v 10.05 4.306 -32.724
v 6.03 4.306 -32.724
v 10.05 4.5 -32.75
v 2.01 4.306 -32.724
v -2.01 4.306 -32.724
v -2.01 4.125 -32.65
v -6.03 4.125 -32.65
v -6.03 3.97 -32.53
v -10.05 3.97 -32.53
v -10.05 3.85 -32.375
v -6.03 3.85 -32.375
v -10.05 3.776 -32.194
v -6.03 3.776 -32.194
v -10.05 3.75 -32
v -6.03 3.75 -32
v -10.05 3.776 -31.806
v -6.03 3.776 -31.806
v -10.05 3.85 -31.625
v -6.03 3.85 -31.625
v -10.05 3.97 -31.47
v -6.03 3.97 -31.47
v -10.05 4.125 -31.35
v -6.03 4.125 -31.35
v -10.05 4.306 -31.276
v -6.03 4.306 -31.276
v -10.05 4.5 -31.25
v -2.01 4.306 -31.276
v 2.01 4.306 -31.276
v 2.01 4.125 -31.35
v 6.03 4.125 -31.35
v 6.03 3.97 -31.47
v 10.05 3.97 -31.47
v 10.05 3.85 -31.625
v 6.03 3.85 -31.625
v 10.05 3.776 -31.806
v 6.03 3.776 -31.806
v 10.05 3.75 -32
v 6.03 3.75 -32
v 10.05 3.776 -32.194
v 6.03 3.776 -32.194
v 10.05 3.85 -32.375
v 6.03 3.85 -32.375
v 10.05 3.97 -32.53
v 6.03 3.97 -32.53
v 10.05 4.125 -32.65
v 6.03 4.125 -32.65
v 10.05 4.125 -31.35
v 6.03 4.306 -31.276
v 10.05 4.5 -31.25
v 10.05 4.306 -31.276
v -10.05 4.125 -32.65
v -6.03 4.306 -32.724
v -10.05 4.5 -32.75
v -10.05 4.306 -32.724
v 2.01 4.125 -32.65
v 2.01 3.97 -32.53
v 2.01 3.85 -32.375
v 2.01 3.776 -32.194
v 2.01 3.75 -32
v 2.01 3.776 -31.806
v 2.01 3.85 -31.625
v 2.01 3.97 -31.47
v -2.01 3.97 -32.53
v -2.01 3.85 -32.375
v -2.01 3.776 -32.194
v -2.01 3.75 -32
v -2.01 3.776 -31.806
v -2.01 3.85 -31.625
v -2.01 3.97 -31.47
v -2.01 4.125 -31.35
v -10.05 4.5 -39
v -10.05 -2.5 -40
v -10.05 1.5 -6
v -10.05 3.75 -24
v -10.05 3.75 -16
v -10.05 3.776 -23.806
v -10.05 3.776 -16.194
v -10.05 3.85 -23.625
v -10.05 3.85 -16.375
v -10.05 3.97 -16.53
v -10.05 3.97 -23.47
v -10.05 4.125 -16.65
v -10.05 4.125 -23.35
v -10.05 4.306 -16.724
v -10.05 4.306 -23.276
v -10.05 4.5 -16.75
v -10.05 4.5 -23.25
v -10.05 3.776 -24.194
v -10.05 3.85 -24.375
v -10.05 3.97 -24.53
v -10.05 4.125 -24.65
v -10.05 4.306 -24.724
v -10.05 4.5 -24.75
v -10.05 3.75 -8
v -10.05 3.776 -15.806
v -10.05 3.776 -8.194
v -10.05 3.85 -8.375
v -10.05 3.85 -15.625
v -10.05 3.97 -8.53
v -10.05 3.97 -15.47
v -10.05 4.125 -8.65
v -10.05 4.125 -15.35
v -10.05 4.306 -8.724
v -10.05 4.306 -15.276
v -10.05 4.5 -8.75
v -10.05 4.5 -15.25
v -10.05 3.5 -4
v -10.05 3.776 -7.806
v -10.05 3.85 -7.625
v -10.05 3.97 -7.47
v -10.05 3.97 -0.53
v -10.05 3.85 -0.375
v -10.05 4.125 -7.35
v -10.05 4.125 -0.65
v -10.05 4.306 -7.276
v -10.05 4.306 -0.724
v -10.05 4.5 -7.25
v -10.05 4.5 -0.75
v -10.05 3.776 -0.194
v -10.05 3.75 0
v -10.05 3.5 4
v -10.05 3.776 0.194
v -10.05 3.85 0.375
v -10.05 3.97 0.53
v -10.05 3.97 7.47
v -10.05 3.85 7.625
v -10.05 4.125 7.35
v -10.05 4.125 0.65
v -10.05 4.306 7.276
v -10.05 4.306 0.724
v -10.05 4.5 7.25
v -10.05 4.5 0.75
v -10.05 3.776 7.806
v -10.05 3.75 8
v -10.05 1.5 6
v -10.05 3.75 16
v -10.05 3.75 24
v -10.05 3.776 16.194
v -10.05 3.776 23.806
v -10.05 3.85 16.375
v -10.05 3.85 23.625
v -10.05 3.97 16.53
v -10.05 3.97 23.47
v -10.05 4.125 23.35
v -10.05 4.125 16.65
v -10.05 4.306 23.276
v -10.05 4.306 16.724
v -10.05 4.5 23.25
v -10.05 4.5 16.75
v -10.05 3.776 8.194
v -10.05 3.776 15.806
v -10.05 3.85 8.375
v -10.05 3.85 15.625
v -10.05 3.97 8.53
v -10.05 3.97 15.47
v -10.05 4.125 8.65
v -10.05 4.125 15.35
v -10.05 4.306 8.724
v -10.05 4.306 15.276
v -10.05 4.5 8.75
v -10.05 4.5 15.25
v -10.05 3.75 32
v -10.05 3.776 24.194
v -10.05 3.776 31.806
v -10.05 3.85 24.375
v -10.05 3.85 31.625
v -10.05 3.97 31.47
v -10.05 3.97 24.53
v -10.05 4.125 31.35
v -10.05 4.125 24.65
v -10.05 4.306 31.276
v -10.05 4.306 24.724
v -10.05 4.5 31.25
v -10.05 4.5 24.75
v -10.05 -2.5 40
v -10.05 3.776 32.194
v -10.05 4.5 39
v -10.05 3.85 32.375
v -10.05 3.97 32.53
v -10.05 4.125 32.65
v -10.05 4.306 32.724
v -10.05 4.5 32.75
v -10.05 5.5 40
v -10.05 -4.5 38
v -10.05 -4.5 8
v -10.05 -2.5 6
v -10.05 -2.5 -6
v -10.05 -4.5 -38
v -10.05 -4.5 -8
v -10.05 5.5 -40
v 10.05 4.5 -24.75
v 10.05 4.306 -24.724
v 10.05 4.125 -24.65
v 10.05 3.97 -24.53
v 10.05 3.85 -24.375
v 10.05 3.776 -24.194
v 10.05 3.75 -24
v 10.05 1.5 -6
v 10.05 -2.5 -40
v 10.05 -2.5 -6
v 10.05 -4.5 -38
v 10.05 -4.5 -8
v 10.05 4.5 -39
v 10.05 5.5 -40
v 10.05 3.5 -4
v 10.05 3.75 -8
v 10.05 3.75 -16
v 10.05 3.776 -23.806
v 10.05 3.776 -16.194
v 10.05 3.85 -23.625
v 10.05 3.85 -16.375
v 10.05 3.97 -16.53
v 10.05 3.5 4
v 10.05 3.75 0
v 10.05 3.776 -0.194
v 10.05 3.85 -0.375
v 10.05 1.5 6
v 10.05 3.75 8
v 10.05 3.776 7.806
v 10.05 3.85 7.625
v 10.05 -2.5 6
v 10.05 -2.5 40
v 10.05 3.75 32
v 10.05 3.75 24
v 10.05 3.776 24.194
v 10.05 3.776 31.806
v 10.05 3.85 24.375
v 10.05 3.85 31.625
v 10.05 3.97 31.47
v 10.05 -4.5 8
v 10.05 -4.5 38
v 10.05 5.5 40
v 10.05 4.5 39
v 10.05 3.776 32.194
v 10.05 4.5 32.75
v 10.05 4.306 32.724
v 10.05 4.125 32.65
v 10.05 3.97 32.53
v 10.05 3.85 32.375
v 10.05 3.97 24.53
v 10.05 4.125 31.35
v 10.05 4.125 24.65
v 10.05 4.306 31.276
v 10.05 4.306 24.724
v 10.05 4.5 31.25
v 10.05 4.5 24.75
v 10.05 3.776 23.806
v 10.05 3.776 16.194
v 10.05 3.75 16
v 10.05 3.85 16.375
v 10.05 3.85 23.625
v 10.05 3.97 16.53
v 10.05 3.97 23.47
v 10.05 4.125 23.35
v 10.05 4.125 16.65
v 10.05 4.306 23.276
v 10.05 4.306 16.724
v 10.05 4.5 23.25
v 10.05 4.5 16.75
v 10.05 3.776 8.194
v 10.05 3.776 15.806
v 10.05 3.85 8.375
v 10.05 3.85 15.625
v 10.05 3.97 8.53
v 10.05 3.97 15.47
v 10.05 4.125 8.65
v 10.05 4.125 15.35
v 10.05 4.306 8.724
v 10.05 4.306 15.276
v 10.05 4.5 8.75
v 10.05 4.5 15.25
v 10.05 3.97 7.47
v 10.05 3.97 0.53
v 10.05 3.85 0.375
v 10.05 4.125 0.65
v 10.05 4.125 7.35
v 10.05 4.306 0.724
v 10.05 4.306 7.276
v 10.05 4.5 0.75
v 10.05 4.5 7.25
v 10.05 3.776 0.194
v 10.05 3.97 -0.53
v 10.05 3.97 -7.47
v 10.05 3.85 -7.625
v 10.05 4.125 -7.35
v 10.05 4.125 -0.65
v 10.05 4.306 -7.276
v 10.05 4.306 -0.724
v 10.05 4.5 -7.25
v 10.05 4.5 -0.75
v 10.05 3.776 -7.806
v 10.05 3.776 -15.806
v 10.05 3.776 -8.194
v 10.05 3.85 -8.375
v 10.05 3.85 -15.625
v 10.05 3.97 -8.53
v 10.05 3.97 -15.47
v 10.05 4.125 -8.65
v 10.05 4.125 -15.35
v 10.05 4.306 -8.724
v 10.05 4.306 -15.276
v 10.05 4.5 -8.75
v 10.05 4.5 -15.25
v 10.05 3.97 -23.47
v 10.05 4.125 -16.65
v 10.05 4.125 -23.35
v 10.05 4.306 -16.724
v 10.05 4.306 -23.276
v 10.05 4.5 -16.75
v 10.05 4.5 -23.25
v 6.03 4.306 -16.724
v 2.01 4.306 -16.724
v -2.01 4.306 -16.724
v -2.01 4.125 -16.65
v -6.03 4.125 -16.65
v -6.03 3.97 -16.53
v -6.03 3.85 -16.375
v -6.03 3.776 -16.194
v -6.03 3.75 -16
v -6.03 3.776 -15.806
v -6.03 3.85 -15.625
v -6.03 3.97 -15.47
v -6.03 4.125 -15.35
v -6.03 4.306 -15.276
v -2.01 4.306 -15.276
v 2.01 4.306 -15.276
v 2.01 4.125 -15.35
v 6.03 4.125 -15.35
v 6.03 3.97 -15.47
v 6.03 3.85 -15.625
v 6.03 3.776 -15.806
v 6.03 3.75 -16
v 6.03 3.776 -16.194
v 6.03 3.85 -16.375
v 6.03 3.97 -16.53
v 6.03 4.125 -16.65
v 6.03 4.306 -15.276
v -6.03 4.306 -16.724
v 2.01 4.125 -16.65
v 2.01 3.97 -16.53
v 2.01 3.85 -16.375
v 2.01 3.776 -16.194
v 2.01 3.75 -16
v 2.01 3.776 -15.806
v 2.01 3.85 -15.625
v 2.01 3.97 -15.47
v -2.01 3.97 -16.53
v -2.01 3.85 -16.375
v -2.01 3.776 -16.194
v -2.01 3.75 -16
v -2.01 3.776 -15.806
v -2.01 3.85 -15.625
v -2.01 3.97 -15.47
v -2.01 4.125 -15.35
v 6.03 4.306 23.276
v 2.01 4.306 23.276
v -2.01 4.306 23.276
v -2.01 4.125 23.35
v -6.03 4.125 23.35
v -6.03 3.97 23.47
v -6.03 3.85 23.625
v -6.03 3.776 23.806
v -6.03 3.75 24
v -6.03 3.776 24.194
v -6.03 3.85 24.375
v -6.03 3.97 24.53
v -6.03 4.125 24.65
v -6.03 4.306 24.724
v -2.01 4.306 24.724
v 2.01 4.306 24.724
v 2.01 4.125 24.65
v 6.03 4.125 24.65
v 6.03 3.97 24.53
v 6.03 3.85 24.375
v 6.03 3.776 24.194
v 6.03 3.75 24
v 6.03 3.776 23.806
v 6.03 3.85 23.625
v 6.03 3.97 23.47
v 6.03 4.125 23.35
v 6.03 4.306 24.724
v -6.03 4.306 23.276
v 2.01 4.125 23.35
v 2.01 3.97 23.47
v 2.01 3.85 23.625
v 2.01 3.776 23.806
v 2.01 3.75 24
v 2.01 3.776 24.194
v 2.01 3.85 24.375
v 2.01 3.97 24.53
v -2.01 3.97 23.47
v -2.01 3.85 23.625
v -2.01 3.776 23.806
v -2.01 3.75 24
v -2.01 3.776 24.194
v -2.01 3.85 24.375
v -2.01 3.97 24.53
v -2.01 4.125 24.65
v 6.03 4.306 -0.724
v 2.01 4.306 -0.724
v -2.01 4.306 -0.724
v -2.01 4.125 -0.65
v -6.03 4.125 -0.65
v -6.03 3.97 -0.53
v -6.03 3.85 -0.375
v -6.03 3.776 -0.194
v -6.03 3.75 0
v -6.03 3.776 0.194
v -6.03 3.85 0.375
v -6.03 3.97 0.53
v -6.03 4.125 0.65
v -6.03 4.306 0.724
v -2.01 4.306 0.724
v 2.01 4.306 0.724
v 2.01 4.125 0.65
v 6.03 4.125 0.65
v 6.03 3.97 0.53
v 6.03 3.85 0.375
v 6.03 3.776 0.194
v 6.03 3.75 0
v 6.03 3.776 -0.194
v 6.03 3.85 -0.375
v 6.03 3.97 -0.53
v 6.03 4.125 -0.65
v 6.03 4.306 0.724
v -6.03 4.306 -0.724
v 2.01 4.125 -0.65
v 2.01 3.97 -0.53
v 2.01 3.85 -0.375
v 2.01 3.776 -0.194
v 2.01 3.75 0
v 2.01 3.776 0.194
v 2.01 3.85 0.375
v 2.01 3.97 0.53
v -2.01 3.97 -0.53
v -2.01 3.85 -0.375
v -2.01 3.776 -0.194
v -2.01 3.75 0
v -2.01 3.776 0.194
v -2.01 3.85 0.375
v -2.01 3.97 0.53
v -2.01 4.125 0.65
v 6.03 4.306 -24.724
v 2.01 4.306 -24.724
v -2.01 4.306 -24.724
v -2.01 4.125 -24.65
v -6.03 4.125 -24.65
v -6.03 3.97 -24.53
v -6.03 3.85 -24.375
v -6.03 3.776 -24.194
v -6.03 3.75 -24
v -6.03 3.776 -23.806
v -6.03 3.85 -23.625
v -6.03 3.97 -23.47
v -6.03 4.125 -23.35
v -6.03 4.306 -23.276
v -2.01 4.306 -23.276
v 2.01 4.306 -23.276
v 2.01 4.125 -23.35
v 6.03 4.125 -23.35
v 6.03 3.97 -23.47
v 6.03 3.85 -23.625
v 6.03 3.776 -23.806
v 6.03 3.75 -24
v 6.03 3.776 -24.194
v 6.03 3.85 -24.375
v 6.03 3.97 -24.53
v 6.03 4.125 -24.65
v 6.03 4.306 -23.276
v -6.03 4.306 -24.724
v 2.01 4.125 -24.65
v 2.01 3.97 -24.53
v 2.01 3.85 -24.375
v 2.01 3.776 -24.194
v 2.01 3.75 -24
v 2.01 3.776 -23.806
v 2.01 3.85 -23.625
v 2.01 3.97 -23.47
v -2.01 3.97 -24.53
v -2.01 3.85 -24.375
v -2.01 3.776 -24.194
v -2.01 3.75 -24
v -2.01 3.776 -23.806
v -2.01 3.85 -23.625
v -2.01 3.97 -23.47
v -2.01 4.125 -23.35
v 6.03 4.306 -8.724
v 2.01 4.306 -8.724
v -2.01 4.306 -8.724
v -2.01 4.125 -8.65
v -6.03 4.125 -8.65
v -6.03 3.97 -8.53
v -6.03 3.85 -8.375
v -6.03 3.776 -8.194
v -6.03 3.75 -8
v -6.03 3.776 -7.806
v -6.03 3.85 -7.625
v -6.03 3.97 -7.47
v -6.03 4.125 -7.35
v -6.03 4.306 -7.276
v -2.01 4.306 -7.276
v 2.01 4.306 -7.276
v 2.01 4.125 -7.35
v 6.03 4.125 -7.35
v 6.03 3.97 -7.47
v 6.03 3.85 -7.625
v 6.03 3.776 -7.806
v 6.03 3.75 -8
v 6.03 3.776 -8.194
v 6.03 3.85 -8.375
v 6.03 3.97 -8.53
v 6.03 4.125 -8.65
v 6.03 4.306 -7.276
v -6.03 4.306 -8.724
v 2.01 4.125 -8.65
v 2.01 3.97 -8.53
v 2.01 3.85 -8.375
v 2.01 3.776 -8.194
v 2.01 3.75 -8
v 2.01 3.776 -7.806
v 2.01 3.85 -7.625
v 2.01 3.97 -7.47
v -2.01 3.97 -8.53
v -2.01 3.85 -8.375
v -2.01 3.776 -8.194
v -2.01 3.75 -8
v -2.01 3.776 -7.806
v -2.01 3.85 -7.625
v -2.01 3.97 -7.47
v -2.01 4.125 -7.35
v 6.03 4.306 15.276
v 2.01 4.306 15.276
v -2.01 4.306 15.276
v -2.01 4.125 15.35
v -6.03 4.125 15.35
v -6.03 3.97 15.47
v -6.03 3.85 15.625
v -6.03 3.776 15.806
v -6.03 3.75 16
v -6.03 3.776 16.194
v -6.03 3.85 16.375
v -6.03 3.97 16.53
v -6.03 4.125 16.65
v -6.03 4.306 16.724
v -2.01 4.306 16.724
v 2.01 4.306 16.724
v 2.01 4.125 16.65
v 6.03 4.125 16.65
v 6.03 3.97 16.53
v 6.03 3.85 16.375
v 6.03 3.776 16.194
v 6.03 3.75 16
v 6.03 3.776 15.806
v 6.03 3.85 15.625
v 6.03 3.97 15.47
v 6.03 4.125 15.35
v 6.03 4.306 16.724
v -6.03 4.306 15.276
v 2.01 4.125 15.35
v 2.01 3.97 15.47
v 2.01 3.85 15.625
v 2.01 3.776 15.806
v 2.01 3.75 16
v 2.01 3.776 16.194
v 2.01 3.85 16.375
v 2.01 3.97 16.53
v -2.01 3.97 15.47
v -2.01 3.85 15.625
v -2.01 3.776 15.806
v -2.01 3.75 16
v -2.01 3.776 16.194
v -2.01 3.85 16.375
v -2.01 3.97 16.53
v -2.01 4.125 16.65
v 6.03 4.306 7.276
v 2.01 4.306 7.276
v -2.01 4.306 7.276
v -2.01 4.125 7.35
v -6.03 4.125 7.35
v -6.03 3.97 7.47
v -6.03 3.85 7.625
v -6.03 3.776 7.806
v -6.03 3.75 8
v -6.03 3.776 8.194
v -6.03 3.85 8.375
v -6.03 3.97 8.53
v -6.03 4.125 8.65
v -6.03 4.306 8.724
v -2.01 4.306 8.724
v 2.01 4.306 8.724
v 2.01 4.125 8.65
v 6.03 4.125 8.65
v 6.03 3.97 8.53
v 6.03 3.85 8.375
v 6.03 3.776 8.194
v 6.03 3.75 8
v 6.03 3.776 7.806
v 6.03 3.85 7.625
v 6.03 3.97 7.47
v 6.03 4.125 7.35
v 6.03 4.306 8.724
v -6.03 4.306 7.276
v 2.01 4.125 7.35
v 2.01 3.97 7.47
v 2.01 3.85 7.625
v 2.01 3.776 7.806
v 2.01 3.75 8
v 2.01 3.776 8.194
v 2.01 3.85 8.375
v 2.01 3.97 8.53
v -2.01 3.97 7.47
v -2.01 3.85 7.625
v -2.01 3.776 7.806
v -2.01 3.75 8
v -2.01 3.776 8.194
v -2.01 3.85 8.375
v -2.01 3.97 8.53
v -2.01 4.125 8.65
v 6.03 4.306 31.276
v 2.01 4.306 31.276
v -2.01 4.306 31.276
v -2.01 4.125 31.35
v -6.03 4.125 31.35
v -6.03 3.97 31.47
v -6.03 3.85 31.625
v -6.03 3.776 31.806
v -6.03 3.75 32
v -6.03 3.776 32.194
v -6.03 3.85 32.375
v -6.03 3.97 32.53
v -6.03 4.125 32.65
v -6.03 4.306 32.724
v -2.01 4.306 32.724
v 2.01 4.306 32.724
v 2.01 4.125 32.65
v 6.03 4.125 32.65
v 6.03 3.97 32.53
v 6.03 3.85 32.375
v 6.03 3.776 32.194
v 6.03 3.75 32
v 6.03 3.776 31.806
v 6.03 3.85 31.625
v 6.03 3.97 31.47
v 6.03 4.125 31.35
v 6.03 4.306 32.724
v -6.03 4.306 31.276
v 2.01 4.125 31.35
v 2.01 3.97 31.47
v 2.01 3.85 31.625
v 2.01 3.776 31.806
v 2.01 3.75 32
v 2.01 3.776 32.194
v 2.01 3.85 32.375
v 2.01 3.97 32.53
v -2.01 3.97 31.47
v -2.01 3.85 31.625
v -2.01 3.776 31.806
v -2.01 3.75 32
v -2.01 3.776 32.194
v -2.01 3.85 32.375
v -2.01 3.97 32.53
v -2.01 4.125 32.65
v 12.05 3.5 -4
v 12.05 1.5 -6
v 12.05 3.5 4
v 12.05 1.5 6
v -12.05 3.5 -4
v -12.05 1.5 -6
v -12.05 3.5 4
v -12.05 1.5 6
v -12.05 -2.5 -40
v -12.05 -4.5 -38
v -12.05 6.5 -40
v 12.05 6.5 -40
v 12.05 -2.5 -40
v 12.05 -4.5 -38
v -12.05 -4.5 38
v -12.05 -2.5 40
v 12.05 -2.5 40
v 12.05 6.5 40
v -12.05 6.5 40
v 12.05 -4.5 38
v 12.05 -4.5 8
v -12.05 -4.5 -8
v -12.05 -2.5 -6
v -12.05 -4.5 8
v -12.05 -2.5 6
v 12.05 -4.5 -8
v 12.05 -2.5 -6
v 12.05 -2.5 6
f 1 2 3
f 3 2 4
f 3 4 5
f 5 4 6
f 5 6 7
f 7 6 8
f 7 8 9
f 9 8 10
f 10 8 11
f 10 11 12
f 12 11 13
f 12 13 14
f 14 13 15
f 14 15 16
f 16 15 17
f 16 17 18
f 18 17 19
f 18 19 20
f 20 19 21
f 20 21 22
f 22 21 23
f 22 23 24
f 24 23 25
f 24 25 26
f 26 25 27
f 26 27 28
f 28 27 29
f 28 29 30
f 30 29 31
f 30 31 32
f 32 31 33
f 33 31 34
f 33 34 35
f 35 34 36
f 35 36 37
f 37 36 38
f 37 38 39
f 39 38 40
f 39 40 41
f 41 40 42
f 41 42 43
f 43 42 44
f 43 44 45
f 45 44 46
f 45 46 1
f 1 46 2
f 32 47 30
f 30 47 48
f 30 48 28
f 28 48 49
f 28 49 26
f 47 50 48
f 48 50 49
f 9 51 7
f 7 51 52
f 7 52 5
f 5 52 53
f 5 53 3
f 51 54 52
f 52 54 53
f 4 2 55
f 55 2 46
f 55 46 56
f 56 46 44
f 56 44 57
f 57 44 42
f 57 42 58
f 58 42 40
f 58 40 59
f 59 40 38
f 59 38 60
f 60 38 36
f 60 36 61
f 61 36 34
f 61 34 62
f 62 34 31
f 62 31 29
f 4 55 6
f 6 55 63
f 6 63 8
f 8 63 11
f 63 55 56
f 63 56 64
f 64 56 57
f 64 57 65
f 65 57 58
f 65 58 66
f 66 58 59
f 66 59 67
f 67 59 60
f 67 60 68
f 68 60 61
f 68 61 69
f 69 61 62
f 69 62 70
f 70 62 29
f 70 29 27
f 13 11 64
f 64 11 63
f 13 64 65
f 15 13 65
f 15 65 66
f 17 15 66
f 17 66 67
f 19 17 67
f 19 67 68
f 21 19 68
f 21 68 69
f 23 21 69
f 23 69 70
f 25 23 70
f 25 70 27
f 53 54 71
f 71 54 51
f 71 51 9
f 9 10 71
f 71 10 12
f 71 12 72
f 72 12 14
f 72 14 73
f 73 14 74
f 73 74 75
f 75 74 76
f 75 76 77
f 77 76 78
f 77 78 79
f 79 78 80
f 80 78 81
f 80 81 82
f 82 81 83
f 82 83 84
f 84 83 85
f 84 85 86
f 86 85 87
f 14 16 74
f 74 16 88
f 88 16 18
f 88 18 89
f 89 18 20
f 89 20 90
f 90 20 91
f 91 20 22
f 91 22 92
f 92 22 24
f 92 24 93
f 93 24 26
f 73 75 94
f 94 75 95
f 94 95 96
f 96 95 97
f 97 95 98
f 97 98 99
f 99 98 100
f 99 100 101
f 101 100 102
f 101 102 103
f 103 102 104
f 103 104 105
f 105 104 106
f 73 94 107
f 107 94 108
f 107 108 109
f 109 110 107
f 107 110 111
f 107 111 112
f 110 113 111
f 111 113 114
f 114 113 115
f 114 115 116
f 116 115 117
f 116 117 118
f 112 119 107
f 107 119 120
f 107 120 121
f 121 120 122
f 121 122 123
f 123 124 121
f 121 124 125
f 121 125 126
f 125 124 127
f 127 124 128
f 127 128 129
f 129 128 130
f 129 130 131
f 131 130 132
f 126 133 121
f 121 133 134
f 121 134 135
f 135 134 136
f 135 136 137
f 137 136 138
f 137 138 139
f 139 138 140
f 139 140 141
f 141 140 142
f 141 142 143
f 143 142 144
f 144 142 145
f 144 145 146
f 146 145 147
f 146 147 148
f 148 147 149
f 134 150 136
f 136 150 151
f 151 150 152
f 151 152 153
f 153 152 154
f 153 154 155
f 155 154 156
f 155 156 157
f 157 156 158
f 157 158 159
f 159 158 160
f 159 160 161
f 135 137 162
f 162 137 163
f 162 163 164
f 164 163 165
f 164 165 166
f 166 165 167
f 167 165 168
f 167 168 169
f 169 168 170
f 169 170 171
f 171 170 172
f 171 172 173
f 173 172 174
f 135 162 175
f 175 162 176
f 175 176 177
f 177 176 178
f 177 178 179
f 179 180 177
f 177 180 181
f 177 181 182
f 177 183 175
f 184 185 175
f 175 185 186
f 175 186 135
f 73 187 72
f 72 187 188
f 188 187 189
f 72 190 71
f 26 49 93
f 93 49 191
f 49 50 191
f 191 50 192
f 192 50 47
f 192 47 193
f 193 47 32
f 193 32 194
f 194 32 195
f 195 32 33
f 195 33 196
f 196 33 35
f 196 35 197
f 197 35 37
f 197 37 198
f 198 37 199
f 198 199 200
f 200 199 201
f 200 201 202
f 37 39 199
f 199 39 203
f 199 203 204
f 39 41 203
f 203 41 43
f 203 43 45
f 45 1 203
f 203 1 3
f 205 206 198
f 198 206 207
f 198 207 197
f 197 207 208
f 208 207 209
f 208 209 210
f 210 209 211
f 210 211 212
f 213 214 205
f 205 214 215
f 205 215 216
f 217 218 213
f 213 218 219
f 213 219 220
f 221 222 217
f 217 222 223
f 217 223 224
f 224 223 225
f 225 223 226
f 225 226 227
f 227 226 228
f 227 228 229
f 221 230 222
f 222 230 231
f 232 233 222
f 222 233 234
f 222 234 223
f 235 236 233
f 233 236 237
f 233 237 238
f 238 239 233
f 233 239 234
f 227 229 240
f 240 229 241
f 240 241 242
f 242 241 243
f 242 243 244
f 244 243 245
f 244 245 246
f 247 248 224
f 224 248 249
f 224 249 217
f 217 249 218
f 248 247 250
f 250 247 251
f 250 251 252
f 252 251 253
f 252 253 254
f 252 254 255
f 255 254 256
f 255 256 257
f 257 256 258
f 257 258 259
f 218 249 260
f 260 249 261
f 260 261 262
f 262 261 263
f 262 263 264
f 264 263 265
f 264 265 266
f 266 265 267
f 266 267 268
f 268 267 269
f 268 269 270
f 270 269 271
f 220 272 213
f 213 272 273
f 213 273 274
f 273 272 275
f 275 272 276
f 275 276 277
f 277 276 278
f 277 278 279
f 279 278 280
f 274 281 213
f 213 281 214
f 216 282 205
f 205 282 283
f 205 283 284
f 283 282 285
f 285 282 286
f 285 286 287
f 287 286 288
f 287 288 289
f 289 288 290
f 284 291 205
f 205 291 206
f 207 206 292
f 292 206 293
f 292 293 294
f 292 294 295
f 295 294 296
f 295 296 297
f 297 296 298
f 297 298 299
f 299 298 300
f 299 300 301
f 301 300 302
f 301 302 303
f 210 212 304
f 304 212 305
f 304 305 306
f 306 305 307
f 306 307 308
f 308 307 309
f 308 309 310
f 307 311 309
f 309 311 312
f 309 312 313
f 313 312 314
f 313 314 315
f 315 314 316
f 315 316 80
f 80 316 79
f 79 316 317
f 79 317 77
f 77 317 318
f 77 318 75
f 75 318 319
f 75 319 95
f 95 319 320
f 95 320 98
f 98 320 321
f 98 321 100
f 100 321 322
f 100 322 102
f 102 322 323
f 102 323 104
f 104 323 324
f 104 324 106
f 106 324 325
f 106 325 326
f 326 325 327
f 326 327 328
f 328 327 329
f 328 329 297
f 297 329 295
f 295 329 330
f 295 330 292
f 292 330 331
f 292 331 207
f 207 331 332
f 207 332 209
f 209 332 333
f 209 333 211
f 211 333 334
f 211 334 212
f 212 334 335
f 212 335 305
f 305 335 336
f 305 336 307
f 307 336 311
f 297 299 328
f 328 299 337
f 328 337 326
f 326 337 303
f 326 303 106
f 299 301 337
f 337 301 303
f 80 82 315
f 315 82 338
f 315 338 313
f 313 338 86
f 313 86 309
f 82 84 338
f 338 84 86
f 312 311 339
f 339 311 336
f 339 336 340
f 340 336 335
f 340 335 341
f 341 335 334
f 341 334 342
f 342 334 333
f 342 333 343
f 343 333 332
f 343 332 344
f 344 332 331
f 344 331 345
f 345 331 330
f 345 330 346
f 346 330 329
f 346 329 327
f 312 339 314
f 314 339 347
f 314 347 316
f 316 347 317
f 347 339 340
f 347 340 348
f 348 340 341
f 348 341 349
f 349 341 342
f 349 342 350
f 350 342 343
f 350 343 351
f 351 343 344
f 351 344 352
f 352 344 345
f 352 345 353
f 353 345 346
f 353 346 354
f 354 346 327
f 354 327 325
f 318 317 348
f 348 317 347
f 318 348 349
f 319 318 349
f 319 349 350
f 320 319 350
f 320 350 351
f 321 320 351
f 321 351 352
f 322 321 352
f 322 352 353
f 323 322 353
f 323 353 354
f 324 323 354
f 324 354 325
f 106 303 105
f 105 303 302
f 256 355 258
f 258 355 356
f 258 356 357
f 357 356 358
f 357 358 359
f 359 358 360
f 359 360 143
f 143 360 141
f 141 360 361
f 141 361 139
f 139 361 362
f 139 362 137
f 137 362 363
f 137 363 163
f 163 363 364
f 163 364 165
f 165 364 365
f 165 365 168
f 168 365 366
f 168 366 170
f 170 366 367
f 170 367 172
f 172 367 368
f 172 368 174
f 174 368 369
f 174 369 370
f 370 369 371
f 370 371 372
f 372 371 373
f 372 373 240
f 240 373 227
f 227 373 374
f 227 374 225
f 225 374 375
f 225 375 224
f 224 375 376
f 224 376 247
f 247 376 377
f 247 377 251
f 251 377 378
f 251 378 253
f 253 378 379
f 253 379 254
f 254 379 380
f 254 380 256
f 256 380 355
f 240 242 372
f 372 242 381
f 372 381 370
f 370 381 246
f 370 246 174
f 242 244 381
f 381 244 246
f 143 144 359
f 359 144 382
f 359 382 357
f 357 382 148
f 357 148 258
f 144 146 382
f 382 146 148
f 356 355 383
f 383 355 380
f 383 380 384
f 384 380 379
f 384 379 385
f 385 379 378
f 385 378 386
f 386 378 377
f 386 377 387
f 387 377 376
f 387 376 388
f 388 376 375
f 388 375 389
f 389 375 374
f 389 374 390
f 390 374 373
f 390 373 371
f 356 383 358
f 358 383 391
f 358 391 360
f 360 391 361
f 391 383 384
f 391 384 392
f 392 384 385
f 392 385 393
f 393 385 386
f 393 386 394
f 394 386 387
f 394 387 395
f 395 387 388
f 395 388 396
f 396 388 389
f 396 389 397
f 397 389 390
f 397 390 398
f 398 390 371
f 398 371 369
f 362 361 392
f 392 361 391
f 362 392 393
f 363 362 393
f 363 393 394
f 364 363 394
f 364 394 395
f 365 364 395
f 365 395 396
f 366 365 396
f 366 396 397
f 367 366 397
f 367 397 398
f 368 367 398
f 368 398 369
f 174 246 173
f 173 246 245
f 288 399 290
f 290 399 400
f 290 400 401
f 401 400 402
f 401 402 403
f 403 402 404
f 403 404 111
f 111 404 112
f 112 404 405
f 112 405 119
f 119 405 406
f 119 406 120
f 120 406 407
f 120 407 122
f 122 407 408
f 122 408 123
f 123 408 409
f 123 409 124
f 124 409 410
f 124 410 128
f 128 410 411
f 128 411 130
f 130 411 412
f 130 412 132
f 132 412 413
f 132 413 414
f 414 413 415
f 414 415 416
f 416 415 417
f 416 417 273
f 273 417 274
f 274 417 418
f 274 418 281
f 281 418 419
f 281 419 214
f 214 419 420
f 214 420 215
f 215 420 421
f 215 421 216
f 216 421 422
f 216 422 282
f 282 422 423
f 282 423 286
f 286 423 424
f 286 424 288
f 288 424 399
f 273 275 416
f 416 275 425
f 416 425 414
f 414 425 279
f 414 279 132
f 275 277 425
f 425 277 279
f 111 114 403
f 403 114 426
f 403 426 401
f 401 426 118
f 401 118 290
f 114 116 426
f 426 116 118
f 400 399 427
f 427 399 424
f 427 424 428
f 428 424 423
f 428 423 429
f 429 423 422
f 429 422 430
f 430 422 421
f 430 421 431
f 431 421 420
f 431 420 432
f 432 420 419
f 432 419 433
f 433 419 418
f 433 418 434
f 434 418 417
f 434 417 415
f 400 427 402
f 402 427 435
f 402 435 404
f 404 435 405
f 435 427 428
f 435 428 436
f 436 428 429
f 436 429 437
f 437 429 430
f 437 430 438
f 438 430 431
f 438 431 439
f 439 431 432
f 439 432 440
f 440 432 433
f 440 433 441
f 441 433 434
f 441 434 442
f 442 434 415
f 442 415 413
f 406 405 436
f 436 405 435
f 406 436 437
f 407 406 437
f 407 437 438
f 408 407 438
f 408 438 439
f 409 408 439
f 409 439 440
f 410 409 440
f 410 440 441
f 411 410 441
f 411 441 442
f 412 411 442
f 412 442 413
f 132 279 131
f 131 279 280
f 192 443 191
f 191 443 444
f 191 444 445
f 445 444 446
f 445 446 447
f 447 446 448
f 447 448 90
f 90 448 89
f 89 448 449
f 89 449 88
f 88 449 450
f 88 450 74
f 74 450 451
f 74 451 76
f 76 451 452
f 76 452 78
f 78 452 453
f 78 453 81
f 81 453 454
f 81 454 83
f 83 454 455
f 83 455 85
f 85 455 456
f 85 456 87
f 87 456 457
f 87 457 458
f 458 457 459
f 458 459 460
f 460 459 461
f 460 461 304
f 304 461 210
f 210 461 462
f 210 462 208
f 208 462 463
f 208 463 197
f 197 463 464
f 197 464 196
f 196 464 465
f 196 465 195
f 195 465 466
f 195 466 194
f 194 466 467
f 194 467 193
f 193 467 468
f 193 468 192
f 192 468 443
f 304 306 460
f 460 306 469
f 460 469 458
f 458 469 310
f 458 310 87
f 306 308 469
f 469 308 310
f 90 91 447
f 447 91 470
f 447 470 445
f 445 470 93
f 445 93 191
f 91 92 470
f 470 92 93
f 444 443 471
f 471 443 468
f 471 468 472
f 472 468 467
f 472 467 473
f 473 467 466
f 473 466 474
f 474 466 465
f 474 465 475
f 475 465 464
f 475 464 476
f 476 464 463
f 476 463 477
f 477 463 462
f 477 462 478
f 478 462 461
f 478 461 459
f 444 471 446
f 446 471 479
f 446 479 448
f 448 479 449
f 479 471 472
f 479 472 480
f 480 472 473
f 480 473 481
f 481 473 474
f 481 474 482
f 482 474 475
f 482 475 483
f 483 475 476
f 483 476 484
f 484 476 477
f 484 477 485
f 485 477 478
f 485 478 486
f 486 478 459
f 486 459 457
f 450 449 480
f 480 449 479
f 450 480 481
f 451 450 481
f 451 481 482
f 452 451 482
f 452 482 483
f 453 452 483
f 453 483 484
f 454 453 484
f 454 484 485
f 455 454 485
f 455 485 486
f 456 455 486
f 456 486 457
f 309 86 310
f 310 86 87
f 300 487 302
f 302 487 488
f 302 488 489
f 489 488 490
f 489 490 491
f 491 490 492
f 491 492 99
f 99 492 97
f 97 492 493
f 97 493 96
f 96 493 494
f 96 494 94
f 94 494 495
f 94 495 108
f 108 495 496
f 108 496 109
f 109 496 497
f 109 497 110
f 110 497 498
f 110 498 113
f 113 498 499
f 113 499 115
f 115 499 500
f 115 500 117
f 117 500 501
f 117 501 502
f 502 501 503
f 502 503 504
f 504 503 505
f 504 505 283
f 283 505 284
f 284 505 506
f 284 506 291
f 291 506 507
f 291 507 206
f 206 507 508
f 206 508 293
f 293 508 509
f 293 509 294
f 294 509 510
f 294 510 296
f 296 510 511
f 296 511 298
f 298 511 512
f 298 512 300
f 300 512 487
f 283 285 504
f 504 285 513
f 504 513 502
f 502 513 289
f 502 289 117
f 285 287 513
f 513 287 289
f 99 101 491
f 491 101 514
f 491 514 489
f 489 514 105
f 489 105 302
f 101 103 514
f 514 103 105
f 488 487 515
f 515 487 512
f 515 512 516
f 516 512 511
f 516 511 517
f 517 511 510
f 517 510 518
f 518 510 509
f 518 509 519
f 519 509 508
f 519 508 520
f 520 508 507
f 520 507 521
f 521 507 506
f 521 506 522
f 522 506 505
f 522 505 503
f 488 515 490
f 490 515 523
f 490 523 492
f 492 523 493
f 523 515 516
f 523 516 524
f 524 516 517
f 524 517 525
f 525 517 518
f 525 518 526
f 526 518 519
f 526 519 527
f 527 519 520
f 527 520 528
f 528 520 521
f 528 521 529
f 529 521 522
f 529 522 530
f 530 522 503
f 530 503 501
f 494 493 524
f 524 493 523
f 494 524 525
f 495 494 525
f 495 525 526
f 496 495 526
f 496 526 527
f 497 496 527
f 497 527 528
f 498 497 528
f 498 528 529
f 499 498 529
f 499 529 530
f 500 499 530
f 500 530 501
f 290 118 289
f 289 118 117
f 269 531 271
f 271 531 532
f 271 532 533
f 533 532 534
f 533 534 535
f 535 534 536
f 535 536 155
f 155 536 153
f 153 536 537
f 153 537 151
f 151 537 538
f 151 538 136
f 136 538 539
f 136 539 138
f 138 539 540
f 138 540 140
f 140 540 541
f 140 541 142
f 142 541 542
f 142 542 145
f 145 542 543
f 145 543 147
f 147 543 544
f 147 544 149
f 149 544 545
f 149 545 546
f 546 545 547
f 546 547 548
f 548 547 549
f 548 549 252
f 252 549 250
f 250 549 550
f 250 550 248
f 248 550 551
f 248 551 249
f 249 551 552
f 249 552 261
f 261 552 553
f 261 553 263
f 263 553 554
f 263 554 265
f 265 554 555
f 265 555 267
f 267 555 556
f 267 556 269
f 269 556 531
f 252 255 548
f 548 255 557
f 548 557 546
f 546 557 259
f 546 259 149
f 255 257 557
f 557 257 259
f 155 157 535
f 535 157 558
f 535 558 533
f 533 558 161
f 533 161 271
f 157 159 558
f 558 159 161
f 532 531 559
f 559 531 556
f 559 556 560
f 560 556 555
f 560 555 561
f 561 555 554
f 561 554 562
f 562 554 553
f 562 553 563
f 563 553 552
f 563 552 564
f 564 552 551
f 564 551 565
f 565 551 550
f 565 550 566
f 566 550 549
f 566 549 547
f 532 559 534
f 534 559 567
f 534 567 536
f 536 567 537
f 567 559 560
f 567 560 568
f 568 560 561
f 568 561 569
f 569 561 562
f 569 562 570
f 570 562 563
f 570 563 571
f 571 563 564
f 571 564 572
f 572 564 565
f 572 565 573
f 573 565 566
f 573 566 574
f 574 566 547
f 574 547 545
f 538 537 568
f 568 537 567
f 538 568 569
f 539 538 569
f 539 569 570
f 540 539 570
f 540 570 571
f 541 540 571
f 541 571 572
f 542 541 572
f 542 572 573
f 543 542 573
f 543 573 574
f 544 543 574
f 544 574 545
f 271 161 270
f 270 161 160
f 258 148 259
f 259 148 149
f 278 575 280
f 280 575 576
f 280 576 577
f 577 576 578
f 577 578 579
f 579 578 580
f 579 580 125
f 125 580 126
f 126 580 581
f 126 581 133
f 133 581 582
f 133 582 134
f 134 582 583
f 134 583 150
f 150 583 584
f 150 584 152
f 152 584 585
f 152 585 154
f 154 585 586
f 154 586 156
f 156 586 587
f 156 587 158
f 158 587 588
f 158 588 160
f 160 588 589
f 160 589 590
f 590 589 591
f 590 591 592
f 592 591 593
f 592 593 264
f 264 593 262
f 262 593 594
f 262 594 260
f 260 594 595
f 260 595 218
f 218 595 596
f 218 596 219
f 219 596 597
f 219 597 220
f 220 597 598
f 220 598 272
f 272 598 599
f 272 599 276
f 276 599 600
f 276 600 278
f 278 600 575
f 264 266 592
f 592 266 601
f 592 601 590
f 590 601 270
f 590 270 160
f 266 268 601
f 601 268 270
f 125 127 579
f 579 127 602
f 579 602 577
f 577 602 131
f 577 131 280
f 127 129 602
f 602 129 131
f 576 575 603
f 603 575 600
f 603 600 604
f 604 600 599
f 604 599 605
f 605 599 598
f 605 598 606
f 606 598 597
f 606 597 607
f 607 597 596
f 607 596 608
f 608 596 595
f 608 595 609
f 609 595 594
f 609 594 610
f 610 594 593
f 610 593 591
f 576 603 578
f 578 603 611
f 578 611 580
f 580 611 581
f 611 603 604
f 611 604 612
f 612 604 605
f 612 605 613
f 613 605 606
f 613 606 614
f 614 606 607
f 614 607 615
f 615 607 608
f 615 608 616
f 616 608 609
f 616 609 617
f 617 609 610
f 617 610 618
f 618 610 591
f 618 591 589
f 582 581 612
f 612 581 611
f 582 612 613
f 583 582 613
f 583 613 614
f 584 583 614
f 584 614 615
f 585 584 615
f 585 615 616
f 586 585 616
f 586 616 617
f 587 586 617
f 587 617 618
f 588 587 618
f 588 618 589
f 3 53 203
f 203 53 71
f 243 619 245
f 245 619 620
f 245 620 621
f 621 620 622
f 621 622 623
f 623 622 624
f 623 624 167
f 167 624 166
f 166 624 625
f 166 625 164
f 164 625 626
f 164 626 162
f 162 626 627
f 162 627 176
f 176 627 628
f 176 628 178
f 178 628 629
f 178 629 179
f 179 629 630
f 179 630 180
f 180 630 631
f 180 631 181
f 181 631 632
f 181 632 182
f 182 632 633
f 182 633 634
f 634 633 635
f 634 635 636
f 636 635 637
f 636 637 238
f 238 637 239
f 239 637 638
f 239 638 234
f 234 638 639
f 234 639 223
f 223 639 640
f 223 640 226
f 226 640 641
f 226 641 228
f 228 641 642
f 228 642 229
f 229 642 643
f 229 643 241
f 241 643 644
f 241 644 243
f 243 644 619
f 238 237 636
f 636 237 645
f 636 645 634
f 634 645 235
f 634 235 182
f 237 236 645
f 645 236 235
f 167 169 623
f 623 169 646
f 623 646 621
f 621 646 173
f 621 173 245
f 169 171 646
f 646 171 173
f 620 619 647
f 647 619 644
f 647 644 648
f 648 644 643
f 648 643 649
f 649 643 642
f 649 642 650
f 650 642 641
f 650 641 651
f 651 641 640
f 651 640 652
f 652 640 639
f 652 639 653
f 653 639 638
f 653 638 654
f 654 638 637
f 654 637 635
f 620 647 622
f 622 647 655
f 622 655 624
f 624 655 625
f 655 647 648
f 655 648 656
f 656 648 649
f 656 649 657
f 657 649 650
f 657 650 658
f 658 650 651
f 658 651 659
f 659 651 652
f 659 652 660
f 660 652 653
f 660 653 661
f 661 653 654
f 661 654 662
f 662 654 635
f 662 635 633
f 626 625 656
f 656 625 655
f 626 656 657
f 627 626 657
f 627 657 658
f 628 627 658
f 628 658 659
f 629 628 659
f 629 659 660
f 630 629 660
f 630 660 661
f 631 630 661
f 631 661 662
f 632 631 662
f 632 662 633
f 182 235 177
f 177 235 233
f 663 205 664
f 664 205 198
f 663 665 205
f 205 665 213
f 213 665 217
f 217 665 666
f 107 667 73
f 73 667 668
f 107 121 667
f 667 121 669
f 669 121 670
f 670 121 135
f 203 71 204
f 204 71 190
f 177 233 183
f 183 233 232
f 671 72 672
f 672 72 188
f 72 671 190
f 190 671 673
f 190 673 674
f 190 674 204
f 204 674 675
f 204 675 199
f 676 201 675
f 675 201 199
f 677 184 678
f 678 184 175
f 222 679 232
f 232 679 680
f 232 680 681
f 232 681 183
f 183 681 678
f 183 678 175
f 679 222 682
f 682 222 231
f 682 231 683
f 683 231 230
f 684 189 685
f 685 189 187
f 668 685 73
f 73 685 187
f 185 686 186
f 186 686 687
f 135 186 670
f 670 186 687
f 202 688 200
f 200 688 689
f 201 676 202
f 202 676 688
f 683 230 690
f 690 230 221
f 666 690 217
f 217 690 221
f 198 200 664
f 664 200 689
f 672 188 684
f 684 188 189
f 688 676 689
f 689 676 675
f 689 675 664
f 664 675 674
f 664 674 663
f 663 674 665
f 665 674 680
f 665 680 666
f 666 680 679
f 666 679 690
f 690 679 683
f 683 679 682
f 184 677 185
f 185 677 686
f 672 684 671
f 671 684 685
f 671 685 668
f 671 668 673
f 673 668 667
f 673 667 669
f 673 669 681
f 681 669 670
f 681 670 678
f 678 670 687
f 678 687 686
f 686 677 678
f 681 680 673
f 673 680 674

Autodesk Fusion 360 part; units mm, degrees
sketch "Sketch1" plane through (0, 0, 0) normal (0, 0, 1) x (1, 0, 0)
  line L0 (10.05, -4.5) -> (-10.05, -4.5)
  line L1 (-10.05, -4.5) -> (-10.05, 4.5)
  line L2 (-10.05, 4.5) -> (10.05, 4.5)
  line L3 (10.05, 4.5) -> (10.05, -4.5)
  line L4 (10.05, -4.5) -> (-10.05, 4.5) construction
  line L5 (-10.05, -4.5) -> (10.05, 4.5) construction
  line L6 (12.05, -6.5) -> (-12.05, -6.5)
  line L7 (-12.05, -6.5) -> (-12.05, 6.5)
  line L8 (-12.05, 6.5) -> (12.05, 6.5)
  line L9 (12.05, 6.5) -> (12.05, -6.5)
  line L10 (-10.05, -4.5) -> (-12.05, -4.5)
  line L11 (10.05, -4.5) -> (12.05, -4.5)
  dimension "d1" = -2
  dimension "d2" = 20.1
  dimension "d3" = 9
extrude "Extrude1" add sketch "Sketch1" along normal mid plane 80 contours L1 L2 L3 L7 L8 L9 L10 L11
sketch "Sketch2" plane through (0, 0, 0) normal (1, 0, 0) x (0, 0, -1)
  line L0 (6, -4.5) -> (-6, -4.5)
  line L1 (-6, -4.5) -> (-6, 3.5)
  line L2 (-6, 3.5) -> (6, 3.5)
  line L3 (6, 3.5) -> (6, -4.5)
  line L4 (6, -4.5) -> (-6, 3.5) construction
  line L5 (-6, -4.5) -> (6, 3.5) construction
  line L6 (40, -4.5) -> (-40, -4.5)
  point P0 (0, -0.5)
  dimension "d6" = 12
  dimension "d7" = 8
extrude "Extrude2" cut sketch "Sketch2" along normal through all and the other way through all
chamfer "Chamfer1" distance 2 angle 45 8 edges at (11.05, -4.5, 6) (11.05, -4.5, -6) (-11.05, -4.5, 6) (-11.05, -4.5, -6) (11.05, -4.5, 40) (-11.05, -4.5, 40) (11.05, -4.5, -40) (-11.05, -4.5, -40)
chamfer "Chamfer2" distance 1 angle 45 2 edges at (0, 4.5, 40) (0, 4.5, -40)
chamfer "Chamfer3" distance 2 angle 45 4 edges at (-11.05, 3.5, 6) (-11.05, 3.5, -6) (11.05, 3.5, 6) (11.05, 3.5, -6)
sketch "Sketch3" plane through (0, 0, 0) normal (1, 0, 0) x (0, 0, -1)
  line L0 (39, 4.5) -> (-39, 4.5)
  line L1 (-39, 4.5) -> (39, 4.5)
  circle A0 centre (0, 4.5) radius 0.75
  circle A1 centre (-32, 4.5) radius 0.75
  circle A2 centre (-24, 4.5) radius 0.75
  circle A3 centre (-16, 4.5) radius 0.75
  circle A4 centre (-8, 4.5) radius 0.75
  circle A5 centre (8, 4.5) radius 0.75
  circle A6 centre (16, 4.5) radius 0.75
  circle A7 centre (24, 4.5) radius 0.75
  circle A8 centre (32, 4.5) radius 0.75
  dimension "d12" = 1.5
  dimension "d15" = 8
  dimension "d16" = 0
extrude "Extrude3" add sketch "Sketch3" along normal up to surface (10.05 mm away) and the other way up to surface (10.05 mm away) contours L0 L1 A8 | L0 L1 A1 | L0 L1 A2 | L0 L1 A3 | L0 L1 A4 | L0 L1 A0 | L0 L1 A5 | L0 L1 A6 | L0 L1 A7 picked at (32.0159, 4.2134) picked at (-32.1559, 4.23) picked at (-24.1944, 4.2563) picked at (-16.1861, 4.2927) picked at (-7.7844, 4.1154) picked at (0.2698, 4.0143) picked at (8.2472, 4.2458) picked at (15.875, 4.0018) picked at (23.8056, 4.2563)
